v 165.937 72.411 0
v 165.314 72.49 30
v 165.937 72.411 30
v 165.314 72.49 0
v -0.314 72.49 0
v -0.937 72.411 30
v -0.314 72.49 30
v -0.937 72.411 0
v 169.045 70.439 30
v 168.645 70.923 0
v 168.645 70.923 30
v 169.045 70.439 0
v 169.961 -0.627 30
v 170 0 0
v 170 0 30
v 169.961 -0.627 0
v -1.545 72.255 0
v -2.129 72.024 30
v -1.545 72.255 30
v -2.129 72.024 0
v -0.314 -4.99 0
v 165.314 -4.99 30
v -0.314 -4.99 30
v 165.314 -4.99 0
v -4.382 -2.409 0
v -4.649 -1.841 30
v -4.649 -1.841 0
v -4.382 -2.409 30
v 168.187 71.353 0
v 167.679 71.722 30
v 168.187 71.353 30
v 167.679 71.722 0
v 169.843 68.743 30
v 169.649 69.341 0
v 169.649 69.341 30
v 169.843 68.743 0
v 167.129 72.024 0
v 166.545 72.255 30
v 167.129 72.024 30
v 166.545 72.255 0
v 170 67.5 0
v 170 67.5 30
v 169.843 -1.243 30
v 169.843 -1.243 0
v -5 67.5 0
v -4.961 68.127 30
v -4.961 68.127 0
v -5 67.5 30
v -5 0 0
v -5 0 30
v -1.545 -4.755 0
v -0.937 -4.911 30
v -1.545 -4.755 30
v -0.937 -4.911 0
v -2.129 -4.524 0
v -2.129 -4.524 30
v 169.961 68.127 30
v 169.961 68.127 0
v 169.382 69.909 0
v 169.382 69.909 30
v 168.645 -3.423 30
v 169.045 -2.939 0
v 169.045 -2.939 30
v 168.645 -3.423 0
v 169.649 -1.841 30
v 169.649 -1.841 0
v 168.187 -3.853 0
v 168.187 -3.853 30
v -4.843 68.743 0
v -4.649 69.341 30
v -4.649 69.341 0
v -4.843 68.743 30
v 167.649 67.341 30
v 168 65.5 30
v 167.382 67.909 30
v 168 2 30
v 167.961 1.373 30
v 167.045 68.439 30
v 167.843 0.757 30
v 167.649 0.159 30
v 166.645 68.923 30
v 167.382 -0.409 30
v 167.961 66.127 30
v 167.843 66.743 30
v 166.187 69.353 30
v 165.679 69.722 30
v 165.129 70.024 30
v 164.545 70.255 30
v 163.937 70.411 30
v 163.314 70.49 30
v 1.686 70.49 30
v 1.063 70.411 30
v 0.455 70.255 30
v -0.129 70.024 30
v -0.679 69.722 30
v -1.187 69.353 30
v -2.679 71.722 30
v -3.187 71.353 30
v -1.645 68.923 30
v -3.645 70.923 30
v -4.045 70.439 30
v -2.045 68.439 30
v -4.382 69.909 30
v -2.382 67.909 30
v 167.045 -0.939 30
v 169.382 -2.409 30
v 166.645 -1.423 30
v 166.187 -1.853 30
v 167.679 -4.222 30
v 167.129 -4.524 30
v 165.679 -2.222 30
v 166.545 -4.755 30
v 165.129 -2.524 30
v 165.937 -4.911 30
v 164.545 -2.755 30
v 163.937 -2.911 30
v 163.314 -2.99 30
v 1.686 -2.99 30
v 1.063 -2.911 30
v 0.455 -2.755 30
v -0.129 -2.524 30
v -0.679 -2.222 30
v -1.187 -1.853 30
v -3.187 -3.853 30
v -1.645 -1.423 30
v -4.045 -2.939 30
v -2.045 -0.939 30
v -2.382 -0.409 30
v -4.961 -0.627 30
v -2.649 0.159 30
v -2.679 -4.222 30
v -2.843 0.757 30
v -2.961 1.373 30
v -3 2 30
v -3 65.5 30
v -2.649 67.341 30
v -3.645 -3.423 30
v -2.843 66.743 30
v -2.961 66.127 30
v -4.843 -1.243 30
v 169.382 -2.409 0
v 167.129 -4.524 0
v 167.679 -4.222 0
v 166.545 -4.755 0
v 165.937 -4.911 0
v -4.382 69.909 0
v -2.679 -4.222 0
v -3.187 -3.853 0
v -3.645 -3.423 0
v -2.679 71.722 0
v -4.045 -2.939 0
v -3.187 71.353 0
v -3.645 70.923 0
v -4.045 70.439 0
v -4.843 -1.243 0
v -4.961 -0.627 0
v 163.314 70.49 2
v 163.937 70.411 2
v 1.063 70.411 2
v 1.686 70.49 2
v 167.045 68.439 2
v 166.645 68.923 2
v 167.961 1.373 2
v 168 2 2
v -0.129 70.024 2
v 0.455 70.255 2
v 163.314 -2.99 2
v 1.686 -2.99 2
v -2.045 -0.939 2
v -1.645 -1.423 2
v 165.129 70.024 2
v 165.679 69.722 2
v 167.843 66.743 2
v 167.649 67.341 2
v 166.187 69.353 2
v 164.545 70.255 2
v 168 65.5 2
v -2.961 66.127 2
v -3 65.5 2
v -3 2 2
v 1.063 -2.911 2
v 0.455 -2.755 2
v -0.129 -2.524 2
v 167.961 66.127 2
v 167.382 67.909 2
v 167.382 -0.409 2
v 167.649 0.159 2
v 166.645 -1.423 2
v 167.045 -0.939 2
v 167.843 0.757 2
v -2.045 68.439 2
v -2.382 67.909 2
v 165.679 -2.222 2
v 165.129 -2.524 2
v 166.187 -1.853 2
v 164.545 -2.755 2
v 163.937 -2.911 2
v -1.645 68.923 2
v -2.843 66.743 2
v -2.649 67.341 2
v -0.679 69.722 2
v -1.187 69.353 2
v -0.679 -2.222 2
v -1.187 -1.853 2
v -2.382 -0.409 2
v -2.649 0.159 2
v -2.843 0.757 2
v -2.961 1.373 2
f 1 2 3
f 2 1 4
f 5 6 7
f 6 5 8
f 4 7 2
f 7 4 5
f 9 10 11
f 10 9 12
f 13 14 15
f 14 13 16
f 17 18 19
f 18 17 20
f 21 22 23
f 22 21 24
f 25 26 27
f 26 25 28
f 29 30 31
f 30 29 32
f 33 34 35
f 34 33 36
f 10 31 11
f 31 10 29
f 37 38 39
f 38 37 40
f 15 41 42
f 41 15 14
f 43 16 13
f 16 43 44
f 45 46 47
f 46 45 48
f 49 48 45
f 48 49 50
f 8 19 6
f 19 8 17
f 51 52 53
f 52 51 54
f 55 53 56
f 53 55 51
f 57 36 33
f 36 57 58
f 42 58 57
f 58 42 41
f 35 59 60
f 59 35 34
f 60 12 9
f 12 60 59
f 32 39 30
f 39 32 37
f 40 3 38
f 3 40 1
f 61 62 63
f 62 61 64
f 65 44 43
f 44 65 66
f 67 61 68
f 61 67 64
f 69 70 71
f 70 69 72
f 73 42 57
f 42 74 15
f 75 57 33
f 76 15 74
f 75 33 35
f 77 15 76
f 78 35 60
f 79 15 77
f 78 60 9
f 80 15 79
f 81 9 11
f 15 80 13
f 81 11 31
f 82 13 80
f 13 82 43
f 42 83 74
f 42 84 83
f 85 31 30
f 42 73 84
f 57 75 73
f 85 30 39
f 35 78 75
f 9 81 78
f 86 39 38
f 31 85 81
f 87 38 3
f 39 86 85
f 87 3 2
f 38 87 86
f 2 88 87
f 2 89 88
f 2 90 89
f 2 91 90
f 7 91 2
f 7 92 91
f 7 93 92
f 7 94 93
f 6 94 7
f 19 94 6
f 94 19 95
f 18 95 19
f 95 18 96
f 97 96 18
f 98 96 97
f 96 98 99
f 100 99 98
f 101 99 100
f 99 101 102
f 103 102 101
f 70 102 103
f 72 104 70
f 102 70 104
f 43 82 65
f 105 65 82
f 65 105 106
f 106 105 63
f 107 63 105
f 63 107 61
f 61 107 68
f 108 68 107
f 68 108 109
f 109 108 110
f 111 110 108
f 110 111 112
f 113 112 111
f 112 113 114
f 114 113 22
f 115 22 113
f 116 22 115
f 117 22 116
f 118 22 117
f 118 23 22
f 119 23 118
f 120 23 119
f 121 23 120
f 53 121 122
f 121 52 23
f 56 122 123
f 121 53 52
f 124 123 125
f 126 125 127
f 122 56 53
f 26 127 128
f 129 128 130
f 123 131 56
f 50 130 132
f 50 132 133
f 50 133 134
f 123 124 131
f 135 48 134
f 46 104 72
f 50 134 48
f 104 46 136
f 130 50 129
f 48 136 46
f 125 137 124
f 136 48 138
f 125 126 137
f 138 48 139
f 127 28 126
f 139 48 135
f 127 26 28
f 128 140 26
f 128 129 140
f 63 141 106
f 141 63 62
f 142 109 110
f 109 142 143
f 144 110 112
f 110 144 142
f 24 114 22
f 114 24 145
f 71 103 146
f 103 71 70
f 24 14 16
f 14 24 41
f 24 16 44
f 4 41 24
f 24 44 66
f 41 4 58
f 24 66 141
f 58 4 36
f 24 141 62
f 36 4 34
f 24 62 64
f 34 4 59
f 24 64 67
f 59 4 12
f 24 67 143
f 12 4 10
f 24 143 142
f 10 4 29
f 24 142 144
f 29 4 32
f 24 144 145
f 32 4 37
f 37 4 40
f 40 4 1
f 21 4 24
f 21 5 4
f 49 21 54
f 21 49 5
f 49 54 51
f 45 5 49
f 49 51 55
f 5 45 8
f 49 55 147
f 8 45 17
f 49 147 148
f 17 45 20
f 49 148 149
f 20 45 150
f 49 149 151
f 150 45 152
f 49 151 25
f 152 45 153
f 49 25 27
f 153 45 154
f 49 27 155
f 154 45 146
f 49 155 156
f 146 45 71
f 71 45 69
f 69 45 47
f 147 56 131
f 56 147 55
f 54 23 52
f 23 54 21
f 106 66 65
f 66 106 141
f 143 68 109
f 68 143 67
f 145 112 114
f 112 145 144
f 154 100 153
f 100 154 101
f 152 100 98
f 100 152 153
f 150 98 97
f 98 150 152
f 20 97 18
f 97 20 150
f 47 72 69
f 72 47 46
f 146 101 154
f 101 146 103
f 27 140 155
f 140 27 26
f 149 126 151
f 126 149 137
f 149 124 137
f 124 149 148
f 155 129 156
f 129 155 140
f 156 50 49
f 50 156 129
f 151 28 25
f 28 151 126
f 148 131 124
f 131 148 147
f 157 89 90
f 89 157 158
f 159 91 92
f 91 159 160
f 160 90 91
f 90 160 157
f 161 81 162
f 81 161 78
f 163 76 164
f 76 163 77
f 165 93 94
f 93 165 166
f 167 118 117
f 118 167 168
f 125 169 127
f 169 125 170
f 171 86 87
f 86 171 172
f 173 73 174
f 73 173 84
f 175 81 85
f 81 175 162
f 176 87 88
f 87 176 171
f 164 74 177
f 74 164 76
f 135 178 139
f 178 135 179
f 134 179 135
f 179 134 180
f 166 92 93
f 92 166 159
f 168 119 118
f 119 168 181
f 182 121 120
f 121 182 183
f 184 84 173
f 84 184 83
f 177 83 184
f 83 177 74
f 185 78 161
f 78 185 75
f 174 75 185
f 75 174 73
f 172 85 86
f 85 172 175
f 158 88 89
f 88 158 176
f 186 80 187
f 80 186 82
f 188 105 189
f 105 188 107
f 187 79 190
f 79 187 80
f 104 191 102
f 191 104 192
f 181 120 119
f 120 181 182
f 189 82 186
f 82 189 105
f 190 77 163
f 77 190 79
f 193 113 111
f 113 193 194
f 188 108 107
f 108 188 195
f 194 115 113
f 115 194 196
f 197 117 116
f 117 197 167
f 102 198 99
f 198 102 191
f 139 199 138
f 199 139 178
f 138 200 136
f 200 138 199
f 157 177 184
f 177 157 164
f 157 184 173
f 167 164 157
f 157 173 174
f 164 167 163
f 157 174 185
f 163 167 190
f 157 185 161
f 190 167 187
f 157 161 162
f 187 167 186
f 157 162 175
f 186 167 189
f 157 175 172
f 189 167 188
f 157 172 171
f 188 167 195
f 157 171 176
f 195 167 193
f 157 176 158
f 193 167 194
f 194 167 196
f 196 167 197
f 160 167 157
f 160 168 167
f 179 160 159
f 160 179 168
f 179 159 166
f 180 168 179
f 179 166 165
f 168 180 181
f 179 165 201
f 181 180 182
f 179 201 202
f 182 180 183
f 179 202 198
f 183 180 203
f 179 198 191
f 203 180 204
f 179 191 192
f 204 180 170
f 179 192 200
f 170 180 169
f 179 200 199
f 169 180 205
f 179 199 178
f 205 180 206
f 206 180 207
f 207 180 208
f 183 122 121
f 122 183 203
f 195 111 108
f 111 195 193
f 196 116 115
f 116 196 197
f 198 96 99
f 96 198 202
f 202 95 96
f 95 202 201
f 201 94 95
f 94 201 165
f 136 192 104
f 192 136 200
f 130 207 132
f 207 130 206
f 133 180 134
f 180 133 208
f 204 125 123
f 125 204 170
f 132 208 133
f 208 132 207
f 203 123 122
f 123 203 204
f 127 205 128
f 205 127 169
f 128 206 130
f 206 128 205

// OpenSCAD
$fn=50;

difference() {
        minkowski() {
            cube([165,67.5,20]);
            cylinder(h=10, d=10);
        };
        translate([2,2,2])
            minkowski() {
                cube([161,63.5,20]);
                cylinder(h=10, d=10);
            };
}        
